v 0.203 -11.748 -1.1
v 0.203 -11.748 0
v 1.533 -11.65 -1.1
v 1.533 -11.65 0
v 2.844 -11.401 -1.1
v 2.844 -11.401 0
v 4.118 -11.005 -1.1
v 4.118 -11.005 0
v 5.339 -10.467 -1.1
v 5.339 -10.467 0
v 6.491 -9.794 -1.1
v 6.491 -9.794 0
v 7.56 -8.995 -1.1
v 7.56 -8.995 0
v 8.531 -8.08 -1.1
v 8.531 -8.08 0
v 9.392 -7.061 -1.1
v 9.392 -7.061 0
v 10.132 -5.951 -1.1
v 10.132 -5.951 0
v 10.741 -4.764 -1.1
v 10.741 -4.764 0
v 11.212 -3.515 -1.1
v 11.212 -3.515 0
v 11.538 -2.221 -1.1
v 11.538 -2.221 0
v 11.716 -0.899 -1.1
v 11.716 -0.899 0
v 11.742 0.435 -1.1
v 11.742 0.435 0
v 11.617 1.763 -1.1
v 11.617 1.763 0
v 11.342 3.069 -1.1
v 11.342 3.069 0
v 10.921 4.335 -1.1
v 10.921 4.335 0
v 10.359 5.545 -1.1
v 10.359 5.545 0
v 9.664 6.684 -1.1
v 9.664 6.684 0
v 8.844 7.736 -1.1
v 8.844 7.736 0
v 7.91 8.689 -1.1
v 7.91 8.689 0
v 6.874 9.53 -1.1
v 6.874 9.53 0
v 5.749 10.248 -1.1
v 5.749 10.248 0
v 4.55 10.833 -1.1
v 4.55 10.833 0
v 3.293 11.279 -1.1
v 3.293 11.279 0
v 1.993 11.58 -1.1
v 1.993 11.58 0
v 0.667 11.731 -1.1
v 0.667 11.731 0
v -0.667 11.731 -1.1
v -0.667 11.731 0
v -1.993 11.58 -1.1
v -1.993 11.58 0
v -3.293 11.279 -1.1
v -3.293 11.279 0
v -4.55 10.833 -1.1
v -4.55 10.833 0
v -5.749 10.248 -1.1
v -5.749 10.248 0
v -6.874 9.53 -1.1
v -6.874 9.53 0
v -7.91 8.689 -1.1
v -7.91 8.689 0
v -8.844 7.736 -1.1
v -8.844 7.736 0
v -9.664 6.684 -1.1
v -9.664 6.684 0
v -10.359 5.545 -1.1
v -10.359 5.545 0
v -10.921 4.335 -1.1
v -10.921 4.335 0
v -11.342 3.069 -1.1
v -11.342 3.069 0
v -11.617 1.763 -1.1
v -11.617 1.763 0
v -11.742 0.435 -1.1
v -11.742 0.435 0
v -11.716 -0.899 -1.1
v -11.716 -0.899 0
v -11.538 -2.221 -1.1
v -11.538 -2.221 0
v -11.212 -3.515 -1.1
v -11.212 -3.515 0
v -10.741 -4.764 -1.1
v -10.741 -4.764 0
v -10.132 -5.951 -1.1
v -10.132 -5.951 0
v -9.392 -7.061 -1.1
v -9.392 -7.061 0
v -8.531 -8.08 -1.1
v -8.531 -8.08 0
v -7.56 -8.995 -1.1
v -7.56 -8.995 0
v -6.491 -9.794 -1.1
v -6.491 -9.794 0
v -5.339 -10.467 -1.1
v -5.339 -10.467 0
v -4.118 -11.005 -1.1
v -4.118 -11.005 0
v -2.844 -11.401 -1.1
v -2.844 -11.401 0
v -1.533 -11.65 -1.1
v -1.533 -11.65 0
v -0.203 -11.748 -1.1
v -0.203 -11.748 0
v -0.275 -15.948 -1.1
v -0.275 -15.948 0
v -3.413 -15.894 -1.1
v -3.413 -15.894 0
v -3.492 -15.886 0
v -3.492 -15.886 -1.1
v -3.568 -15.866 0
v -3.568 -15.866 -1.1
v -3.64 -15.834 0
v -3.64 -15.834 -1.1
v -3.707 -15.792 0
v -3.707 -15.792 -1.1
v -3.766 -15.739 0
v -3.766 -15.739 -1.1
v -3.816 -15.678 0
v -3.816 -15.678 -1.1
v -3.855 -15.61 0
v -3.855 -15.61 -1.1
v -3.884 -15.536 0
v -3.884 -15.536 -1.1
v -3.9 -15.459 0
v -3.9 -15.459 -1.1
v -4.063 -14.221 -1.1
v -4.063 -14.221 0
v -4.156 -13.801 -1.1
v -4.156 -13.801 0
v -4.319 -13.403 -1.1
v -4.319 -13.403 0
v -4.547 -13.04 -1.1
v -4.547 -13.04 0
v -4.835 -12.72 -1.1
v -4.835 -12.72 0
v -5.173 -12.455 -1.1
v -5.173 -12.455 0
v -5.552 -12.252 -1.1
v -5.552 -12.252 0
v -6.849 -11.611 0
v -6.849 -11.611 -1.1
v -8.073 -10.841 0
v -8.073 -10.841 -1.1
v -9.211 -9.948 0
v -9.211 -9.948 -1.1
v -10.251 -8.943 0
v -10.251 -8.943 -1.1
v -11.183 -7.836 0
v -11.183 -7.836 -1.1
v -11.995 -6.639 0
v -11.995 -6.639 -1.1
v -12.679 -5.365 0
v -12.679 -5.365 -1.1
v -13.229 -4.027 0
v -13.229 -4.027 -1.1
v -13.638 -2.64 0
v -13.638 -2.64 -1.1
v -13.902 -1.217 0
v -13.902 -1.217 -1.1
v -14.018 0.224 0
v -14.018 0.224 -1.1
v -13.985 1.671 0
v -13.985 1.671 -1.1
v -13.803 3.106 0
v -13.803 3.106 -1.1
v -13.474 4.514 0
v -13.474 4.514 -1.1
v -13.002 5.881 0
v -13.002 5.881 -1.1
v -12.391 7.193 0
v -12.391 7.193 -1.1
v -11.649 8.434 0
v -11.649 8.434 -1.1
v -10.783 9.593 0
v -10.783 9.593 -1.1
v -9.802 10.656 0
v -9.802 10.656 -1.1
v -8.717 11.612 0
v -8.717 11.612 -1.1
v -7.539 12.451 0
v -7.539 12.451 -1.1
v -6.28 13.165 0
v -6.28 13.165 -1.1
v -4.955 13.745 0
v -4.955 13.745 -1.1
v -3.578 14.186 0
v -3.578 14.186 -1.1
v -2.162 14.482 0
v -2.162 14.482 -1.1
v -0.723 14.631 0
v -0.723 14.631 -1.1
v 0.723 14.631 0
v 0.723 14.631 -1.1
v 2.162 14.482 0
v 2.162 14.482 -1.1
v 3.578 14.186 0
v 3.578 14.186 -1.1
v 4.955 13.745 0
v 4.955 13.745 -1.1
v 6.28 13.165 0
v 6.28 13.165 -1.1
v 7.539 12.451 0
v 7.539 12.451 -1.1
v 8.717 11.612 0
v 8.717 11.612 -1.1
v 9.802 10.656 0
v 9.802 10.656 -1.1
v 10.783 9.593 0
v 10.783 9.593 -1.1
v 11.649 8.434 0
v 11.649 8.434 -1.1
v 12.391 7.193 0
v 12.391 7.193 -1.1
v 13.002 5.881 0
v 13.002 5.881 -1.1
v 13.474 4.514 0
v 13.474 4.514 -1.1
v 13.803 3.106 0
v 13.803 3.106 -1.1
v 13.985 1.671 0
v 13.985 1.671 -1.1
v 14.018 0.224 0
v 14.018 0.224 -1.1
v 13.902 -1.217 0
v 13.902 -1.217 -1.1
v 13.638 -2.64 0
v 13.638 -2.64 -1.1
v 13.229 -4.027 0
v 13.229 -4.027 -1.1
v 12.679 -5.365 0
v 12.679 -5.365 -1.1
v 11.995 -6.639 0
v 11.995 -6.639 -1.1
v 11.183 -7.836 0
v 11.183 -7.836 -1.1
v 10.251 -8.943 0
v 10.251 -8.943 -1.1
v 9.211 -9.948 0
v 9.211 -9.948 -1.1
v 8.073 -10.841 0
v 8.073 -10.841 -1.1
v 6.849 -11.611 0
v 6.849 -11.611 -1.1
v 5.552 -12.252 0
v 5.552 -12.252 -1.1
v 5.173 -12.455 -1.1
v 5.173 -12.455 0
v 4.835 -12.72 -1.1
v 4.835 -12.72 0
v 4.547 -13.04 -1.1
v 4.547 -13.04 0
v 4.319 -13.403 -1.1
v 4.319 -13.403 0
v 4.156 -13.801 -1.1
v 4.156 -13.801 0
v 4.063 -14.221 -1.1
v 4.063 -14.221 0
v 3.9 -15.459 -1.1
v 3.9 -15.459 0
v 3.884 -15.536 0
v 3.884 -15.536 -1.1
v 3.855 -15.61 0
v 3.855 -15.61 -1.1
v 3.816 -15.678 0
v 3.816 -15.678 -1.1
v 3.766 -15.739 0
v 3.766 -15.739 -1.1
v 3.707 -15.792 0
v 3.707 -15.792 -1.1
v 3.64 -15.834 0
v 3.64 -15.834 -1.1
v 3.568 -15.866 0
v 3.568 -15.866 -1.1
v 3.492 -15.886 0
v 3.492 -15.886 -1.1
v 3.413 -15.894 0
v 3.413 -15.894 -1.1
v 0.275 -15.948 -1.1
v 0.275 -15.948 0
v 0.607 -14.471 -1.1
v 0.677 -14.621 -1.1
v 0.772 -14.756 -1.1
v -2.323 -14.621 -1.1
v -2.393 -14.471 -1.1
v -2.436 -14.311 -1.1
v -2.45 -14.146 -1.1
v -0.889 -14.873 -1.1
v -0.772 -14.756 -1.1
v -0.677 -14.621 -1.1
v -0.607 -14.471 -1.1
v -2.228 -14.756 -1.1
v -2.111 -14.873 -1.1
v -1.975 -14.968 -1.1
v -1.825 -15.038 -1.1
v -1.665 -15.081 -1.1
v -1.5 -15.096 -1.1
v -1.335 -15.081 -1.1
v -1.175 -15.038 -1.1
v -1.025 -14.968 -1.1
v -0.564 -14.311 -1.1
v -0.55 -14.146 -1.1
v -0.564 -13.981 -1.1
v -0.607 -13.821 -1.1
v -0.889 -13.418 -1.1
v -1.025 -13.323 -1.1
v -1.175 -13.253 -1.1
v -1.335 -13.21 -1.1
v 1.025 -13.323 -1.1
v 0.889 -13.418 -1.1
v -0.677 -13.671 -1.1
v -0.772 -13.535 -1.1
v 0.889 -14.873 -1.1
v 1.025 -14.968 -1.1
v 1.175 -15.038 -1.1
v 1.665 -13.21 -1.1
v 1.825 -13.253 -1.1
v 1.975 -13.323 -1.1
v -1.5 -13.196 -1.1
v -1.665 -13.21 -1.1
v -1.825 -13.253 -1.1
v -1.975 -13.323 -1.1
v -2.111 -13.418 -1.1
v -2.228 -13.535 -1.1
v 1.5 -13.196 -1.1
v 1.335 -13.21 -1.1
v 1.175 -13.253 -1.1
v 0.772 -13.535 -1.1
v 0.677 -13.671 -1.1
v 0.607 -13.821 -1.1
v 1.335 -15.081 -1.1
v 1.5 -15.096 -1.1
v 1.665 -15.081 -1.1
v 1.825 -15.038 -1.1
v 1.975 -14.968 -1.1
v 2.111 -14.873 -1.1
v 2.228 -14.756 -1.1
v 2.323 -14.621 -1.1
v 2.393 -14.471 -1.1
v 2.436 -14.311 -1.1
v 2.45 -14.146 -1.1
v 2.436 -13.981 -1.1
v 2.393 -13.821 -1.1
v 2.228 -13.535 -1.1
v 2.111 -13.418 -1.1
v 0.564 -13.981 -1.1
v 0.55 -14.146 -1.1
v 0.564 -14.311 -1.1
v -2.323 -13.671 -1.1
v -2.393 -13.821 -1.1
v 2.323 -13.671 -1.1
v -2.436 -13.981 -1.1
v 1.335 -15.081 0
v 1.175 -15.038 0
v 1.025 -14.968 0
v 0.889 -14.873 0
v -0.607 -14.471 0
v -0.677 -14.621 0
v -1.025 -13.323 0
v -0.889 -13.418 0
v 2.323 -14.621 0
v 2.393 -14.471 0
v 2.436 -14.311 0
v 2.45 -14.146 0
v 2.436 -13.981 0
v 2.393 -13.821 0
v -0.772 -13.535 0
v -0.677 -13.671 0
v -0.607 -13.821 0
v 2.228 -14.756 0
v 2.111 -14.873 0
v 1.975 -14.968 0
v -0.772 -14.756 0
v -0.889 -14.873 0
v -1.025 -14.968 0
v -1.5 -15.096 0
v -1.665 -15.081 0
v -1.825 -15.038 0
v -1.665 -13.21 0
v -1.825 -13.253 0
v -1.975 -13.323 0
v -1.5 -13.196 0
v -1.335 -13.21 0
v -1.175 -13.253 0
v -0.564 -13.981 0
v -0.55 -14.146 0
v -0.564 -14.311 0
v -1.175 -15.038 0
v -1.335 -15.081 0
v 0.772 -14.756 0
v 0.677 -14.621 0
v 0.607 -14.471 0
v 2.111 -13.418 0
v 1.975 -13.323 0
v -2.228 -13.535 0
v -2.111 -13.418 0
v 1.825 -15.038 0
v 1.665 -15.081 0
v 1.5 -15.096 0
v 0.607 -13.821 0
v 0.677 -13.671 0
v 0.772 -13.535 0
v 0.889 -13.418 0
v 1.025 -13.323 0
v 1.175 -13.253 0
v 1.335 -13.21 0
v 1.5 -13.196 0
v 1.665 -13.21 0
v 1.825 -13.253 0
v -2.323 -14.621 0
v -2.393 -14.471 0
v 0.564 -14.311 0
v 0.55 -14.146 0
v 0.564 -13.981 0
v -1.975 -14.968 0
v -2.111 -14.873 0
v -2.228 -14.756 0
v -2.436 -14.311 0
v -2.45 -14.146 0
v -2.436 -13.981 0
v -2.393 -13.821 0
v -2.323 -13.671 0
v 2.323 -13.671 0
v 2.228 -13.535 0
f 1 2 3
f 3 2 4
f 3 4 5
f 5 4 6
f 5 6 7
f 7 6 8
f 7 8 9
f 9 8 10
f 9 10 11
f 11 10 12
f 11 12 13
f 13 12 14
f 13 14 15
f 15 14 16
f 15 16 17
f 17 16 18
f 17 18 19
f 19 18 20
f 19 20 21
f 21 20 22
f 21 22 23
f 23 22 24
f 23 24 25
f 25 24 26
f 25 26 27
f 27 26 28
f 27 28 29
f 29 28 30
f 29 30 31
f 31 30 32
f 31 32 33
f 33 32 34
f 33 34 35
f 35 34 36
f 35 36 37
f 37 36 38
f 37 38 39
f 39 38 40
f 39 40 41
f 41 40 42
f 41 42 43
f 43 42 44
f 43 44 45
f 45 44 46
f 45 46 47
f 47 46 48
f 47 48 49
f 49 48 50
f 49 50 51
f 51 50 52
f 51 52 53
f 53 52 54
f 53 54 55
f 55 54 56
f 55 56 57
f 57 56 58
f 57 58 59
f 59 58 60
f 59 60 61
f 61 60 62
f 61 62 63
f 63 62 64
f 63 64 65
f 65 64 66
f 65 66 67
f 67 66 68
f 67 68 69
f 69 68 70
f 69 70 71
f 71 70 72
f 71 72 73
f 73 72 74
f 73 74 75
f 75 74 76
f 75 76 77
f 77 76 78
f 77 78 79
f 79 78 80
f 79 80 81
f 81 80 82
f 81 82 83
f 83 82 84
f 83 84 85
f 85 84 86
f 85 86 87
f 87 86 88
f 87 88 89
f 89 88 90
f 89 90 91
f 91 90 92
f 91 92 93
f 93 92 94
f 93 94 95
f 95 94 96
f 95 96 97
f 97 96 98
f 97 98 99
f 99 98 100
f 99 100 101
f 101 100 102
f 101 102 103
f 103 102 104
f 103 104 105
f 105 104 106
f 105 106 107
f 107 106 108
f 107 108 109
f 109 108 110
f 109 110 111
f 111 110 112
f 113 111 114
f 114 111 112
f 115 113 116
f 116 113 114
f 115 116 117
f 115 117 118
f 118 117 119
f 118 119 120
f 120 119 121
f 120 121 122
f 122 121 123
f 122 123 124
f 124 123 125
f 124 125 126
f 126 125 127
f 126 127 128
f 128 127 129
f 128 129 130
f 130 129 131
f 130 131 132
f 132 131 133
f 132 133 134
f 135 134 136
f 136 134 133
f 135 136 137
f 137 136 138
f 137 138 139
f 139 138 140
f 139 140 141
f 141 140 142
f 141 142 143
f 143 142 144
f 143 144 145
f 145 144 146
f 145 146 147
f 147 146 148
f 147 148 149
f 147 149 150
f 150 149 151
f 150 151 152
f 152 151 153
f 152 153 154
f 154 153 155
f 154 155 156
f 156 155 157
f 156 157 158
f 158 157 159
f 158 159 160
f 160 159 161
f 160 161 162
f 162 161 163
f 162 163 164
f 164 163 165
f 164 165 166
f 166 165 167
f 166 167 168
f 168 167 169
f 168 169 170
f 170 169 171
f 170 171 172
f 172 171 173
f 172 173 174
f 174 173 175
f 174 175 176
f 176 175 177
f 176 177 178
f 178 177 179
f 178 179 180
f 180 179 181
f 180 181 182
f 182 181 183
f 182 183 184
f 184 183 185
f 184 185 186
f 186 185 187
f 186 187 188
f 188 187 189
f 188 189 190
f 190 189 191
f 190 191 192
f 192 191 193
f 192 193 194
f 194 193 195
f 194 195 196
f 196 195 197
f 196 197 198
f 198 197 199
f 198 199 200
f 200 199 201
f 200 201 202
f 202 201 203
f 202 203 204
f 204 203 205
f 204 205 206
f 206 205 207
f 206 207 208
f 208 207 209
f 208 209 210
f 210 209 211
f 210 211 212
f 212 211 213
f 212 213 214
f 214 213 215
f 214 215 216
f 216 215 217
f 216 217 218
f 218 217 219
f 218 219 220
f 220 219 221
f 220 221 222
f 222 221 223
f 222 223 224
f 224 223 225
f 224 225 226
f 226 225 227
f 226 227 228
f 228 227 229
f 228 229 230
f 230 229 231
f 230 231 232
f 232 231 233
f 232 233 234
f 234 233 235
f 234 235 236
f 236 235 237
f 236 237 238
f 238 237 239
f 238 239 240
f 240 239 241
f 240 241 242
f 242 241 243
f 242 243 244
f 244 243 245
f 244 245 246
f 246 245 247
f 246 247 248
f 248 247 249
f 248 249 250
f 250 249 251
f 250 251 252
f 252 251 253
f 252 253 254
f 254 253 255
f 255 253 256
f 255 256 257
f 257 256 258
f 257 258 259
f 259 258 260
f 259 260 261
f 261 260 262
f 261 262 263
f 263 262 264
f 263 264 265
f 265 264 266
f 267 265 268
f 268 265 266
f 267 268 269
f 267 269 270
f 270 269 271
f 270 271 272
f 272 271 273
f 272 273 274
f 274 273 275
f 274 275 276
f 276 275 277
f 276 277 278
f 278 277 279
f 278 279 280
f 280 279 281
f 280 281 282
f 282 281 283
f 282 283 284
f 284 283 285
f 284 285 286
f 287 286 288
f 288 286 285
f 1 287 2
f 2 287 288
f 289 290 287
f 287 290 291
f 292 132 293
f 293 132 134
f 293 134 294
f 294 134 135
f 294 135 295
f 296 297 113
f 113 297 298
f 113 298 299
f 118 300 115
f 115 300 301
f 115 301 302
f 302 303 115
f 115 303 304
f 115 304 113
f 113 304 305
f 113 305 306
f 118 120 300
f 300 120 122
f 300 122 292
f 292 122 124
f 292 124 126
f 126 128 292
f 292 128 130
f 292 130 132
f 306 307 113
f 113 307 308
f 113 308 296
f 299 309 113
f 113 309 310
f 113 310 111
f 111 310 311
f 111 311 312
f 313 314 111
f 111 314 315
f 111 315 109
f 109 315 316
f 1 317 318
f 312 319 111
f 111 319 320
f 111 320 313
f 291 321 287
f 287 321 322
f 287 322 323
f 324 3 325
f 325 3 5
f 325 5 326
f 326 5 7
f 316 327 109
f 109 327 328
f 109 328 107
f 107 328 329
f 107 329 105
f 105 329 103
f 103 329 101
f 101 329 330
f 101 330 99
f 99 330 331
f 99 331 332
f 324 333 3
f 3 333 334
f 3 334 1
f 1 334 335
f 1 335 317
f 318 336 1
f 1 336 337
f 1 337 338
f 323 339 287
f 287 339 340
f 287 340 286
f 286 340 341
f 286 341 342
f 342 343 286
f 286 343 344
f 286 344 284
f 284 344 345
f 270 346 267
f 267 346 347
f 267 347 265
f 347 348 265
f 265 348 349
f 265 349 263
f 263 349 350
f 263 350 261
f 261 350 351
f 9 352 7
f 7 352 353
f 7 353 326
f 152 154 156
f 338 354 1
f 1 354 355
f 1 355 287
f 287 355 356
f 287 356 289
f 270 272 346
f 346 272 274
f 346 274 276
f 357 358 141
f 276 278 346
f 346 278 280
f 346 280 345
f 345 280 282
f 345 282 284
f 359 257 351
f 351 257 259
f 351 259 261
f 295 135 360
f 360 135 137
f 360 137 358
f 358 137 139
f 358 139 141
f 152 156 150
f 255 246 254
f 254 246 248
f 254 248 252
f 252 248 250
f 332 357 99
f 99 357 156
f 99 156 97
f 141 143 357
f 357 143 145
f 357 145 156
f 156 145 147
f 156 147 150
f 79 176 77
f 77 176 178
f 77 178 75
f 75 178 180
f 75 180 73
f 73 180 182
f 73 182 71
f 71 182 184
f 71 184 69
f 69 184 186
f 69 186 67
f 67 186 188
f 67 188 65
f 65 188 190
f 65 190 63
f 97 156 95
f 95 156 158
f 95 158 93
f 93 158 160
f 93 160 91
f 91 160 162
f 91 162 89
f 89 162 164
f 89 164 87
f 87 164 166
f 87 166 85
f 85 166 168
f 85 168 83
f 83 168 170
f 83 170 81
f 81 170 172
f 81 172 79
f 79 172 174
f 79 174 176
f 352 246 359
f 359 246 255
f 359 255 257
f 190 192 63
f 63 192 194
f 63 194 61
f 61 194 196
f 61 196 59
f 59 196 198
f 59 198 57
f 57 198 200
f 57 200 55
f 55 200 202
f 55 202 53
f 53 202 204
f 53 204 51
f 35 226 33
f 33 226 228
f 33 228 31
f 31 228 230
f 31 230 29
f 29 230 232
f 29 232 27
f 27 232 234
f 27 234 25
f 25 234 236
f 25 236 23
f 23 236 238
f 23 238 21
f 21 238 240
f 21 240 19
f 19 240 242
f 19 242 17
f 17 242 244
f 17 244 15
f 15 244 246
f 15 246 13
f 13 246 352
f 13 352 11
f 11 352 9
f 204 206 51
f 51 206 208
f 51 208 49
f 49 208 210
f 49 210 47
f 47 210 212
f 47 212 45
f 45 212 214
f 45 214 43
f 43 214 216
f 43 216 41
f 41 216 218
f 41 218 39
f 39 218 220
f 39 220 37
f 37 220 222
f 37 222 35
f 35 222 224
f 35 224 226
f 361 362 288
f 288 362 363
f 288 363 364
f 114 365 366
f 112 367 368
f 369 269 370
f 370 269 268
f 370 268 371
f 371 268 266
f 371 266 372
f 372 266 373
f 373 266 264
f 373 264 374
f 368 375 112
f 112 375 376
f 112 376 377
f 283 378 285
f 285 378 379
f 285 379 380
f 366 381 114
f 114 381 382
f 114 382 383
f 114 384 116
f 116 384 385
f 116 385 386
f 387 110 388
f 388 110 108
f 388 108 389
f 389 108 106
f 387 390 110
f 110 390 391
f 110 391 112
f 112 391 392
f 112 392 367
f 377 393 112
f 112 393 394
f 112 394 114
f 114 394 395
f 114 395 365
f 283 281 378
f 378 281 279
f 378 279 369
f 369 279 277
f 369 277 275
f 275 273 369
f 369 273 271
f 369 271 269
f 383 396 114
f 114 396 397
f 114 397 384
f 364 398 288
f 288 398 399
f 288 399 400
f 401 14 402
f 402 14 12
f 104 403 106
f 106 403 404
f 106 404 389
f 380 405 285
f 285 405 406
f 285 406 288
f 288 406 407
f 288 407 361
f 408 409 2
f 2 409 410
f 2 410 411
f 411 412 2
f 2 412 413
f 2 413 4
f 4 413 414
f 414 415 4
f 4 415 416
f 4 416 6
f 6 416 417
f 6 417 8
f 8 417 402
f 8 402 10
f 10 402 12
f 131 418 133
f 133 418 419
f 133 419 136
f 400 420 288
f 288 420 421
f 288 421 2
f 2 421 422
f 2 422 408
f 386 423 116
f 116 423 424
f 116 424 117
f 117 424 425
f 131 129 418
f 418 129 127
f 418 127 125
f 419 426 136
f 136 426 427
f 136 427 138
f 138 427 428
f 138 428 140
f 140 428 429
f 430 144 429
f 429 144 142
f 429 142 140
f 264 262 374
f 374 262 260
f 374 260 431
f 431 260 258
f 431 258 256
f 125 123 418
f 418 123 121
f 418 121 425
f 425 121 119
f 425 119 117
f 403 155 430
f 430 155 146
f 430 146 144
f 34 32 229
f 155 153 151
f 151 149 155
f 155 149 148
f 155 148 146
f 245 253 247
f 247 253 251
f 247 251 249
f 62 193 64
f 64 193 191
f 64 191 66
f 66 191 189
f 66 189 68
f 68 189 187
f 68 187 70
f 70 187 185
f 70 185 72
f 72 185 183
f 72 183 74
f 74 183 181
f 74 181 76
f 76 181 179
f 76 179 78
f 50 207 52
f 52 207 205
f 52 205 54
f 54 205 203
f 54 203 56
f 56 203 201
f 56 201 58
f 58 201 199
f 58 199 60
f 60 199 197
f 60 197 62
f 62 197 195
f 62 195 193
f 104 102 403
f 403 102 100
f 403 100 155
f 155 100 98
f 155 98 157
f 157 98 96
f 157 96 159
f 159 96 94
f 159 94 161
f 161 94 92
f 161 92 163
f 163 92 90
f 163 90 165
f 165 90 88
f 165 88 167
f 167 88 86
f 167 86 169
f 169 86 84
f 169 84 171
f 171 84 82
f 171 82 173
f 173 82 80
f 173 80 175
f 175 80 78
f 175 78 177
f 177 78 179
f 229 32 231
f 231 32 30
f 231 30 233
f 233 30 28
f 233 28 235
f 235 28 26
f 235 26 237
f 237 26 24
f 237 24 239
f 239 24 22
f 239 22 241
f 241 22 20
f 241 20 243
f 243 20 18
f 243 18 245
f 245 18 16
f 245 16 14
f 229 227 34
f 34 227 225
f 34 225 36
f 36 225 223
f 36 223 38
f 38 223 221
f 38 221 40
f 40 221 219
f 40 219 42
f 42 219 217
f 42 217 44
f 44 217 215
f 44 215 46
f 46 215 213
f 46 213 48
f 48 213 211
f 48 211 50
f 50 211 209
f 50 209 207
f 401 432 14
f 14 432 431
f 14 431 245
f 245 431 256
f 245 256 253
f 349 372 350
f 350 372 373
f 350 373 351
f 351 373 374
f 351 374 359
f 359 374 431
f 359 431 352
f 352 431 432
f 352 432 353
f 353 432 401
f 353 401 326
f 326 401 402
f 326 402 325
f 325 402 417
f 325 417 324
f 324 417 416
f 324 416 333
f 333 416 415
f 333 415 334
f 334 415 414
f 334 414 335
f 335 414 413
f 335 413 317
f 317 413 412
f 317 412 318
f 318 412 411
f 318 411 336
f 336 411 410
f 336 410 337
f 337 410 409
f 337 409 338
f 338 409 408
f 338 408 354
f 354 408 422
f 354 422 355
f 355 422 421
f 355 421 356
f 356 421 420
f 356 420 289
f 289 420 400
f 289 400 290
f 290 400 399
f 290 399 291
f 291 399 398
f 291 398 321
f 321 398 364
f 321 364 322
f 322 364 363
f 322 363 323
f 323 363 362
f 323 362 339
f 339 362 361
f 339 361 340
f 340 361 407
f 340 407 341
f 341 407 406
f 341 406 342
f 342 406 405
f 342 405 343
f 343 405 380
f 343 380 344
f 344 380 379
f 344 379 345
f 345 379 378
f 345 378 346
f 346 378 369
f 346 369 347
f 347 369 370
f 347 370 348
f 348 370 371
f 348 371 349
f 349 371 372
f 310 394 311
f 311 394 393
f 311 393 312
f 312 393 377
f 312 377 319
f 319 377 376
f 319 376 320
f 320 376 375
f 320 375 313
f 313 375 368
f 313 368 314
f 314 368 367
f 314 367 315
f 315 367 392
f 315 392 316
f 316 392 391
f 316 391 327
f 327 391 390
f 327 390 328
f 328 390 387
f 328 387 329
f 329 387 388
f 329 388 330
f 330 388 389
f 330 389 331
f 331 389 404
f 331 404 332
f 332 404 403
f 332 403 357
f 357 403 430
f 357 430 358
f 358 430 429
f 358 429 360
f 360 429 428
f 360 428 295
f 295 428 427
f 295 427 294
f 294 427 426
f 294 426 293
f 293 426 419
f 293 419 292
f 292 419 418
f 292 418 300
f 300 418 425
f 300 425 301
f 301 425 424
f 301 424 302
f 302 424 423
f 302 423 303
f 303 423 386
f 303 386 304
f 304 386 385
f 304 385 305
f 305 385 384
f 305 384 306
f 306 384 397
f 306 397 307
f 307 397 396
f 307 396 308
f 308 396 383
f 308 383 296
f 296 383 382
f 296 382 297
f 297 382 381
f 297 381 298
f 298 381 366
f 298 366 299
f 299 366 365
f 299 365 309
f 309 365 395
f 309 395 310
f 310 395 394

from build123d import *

# Parameters (mm, degrees)
BODYSKE_R  = 0.95
BODY_DEPTH = 1.1


with BuildPart() as part:
    # BodySke → Body (new body)
    with BuildSketch(Plane.XY):
        with BuildLine():
            Line((0.202586207, -11.748253437), (0.275, -15.947629134))
            Line((0.275, -15.947629134), (3.412936149, -15.893518744))
            ThreePointArc((3.412936149, -15.893518744), (3.737216925, -15.766656886), (3.90003789, -15.458856161))
            Line((3.90003789, -15.458856161), (4.063046444, -14.220683266))
            ThreePointArc((4.063046444, -14.220683266), (4.547351567, -13.039514962), (5.551735507, -12.251528341))
            ThreePointArc((5.551735507, -12.251528341), (0, 14.65), (-5.551735507, -12.251528341))
            ThreePointArc((-5.551735507, -12.251528341), (-4.547351567, -13.039514962), (-4.063046444, -14.220683266))
            Line((-4.063046444, -14.220683266), (-3.90003789, -15.458856161))
            ThreePointArc((-3.90003789, -15.458856161), (-3.737216925, -15.766656886), (-3.412936149, -15.893518744))
            Line((-3.412936149, -15.893518744), (-0.275, -15.947629134))
            Line((-0.275, -15.947629134), (-0.202586207, -11.748253437))
            ThreePointArc((-0.202586207, -11.748253437), (0, 11.75), (0.202586207, -11.748253437))
        make_face()
        with Locations((1.5, -14.145692807)):
            Circle(BODYSKE_R, mode=Mode.SUBTRACT)
        with Locations((-1.5, -14.145692807)):
            Circle(BODYSKE_R, mode=Mode.SUBTRACT)
    extrude(amount=-BODY_DEPTH)


solid = part.part
